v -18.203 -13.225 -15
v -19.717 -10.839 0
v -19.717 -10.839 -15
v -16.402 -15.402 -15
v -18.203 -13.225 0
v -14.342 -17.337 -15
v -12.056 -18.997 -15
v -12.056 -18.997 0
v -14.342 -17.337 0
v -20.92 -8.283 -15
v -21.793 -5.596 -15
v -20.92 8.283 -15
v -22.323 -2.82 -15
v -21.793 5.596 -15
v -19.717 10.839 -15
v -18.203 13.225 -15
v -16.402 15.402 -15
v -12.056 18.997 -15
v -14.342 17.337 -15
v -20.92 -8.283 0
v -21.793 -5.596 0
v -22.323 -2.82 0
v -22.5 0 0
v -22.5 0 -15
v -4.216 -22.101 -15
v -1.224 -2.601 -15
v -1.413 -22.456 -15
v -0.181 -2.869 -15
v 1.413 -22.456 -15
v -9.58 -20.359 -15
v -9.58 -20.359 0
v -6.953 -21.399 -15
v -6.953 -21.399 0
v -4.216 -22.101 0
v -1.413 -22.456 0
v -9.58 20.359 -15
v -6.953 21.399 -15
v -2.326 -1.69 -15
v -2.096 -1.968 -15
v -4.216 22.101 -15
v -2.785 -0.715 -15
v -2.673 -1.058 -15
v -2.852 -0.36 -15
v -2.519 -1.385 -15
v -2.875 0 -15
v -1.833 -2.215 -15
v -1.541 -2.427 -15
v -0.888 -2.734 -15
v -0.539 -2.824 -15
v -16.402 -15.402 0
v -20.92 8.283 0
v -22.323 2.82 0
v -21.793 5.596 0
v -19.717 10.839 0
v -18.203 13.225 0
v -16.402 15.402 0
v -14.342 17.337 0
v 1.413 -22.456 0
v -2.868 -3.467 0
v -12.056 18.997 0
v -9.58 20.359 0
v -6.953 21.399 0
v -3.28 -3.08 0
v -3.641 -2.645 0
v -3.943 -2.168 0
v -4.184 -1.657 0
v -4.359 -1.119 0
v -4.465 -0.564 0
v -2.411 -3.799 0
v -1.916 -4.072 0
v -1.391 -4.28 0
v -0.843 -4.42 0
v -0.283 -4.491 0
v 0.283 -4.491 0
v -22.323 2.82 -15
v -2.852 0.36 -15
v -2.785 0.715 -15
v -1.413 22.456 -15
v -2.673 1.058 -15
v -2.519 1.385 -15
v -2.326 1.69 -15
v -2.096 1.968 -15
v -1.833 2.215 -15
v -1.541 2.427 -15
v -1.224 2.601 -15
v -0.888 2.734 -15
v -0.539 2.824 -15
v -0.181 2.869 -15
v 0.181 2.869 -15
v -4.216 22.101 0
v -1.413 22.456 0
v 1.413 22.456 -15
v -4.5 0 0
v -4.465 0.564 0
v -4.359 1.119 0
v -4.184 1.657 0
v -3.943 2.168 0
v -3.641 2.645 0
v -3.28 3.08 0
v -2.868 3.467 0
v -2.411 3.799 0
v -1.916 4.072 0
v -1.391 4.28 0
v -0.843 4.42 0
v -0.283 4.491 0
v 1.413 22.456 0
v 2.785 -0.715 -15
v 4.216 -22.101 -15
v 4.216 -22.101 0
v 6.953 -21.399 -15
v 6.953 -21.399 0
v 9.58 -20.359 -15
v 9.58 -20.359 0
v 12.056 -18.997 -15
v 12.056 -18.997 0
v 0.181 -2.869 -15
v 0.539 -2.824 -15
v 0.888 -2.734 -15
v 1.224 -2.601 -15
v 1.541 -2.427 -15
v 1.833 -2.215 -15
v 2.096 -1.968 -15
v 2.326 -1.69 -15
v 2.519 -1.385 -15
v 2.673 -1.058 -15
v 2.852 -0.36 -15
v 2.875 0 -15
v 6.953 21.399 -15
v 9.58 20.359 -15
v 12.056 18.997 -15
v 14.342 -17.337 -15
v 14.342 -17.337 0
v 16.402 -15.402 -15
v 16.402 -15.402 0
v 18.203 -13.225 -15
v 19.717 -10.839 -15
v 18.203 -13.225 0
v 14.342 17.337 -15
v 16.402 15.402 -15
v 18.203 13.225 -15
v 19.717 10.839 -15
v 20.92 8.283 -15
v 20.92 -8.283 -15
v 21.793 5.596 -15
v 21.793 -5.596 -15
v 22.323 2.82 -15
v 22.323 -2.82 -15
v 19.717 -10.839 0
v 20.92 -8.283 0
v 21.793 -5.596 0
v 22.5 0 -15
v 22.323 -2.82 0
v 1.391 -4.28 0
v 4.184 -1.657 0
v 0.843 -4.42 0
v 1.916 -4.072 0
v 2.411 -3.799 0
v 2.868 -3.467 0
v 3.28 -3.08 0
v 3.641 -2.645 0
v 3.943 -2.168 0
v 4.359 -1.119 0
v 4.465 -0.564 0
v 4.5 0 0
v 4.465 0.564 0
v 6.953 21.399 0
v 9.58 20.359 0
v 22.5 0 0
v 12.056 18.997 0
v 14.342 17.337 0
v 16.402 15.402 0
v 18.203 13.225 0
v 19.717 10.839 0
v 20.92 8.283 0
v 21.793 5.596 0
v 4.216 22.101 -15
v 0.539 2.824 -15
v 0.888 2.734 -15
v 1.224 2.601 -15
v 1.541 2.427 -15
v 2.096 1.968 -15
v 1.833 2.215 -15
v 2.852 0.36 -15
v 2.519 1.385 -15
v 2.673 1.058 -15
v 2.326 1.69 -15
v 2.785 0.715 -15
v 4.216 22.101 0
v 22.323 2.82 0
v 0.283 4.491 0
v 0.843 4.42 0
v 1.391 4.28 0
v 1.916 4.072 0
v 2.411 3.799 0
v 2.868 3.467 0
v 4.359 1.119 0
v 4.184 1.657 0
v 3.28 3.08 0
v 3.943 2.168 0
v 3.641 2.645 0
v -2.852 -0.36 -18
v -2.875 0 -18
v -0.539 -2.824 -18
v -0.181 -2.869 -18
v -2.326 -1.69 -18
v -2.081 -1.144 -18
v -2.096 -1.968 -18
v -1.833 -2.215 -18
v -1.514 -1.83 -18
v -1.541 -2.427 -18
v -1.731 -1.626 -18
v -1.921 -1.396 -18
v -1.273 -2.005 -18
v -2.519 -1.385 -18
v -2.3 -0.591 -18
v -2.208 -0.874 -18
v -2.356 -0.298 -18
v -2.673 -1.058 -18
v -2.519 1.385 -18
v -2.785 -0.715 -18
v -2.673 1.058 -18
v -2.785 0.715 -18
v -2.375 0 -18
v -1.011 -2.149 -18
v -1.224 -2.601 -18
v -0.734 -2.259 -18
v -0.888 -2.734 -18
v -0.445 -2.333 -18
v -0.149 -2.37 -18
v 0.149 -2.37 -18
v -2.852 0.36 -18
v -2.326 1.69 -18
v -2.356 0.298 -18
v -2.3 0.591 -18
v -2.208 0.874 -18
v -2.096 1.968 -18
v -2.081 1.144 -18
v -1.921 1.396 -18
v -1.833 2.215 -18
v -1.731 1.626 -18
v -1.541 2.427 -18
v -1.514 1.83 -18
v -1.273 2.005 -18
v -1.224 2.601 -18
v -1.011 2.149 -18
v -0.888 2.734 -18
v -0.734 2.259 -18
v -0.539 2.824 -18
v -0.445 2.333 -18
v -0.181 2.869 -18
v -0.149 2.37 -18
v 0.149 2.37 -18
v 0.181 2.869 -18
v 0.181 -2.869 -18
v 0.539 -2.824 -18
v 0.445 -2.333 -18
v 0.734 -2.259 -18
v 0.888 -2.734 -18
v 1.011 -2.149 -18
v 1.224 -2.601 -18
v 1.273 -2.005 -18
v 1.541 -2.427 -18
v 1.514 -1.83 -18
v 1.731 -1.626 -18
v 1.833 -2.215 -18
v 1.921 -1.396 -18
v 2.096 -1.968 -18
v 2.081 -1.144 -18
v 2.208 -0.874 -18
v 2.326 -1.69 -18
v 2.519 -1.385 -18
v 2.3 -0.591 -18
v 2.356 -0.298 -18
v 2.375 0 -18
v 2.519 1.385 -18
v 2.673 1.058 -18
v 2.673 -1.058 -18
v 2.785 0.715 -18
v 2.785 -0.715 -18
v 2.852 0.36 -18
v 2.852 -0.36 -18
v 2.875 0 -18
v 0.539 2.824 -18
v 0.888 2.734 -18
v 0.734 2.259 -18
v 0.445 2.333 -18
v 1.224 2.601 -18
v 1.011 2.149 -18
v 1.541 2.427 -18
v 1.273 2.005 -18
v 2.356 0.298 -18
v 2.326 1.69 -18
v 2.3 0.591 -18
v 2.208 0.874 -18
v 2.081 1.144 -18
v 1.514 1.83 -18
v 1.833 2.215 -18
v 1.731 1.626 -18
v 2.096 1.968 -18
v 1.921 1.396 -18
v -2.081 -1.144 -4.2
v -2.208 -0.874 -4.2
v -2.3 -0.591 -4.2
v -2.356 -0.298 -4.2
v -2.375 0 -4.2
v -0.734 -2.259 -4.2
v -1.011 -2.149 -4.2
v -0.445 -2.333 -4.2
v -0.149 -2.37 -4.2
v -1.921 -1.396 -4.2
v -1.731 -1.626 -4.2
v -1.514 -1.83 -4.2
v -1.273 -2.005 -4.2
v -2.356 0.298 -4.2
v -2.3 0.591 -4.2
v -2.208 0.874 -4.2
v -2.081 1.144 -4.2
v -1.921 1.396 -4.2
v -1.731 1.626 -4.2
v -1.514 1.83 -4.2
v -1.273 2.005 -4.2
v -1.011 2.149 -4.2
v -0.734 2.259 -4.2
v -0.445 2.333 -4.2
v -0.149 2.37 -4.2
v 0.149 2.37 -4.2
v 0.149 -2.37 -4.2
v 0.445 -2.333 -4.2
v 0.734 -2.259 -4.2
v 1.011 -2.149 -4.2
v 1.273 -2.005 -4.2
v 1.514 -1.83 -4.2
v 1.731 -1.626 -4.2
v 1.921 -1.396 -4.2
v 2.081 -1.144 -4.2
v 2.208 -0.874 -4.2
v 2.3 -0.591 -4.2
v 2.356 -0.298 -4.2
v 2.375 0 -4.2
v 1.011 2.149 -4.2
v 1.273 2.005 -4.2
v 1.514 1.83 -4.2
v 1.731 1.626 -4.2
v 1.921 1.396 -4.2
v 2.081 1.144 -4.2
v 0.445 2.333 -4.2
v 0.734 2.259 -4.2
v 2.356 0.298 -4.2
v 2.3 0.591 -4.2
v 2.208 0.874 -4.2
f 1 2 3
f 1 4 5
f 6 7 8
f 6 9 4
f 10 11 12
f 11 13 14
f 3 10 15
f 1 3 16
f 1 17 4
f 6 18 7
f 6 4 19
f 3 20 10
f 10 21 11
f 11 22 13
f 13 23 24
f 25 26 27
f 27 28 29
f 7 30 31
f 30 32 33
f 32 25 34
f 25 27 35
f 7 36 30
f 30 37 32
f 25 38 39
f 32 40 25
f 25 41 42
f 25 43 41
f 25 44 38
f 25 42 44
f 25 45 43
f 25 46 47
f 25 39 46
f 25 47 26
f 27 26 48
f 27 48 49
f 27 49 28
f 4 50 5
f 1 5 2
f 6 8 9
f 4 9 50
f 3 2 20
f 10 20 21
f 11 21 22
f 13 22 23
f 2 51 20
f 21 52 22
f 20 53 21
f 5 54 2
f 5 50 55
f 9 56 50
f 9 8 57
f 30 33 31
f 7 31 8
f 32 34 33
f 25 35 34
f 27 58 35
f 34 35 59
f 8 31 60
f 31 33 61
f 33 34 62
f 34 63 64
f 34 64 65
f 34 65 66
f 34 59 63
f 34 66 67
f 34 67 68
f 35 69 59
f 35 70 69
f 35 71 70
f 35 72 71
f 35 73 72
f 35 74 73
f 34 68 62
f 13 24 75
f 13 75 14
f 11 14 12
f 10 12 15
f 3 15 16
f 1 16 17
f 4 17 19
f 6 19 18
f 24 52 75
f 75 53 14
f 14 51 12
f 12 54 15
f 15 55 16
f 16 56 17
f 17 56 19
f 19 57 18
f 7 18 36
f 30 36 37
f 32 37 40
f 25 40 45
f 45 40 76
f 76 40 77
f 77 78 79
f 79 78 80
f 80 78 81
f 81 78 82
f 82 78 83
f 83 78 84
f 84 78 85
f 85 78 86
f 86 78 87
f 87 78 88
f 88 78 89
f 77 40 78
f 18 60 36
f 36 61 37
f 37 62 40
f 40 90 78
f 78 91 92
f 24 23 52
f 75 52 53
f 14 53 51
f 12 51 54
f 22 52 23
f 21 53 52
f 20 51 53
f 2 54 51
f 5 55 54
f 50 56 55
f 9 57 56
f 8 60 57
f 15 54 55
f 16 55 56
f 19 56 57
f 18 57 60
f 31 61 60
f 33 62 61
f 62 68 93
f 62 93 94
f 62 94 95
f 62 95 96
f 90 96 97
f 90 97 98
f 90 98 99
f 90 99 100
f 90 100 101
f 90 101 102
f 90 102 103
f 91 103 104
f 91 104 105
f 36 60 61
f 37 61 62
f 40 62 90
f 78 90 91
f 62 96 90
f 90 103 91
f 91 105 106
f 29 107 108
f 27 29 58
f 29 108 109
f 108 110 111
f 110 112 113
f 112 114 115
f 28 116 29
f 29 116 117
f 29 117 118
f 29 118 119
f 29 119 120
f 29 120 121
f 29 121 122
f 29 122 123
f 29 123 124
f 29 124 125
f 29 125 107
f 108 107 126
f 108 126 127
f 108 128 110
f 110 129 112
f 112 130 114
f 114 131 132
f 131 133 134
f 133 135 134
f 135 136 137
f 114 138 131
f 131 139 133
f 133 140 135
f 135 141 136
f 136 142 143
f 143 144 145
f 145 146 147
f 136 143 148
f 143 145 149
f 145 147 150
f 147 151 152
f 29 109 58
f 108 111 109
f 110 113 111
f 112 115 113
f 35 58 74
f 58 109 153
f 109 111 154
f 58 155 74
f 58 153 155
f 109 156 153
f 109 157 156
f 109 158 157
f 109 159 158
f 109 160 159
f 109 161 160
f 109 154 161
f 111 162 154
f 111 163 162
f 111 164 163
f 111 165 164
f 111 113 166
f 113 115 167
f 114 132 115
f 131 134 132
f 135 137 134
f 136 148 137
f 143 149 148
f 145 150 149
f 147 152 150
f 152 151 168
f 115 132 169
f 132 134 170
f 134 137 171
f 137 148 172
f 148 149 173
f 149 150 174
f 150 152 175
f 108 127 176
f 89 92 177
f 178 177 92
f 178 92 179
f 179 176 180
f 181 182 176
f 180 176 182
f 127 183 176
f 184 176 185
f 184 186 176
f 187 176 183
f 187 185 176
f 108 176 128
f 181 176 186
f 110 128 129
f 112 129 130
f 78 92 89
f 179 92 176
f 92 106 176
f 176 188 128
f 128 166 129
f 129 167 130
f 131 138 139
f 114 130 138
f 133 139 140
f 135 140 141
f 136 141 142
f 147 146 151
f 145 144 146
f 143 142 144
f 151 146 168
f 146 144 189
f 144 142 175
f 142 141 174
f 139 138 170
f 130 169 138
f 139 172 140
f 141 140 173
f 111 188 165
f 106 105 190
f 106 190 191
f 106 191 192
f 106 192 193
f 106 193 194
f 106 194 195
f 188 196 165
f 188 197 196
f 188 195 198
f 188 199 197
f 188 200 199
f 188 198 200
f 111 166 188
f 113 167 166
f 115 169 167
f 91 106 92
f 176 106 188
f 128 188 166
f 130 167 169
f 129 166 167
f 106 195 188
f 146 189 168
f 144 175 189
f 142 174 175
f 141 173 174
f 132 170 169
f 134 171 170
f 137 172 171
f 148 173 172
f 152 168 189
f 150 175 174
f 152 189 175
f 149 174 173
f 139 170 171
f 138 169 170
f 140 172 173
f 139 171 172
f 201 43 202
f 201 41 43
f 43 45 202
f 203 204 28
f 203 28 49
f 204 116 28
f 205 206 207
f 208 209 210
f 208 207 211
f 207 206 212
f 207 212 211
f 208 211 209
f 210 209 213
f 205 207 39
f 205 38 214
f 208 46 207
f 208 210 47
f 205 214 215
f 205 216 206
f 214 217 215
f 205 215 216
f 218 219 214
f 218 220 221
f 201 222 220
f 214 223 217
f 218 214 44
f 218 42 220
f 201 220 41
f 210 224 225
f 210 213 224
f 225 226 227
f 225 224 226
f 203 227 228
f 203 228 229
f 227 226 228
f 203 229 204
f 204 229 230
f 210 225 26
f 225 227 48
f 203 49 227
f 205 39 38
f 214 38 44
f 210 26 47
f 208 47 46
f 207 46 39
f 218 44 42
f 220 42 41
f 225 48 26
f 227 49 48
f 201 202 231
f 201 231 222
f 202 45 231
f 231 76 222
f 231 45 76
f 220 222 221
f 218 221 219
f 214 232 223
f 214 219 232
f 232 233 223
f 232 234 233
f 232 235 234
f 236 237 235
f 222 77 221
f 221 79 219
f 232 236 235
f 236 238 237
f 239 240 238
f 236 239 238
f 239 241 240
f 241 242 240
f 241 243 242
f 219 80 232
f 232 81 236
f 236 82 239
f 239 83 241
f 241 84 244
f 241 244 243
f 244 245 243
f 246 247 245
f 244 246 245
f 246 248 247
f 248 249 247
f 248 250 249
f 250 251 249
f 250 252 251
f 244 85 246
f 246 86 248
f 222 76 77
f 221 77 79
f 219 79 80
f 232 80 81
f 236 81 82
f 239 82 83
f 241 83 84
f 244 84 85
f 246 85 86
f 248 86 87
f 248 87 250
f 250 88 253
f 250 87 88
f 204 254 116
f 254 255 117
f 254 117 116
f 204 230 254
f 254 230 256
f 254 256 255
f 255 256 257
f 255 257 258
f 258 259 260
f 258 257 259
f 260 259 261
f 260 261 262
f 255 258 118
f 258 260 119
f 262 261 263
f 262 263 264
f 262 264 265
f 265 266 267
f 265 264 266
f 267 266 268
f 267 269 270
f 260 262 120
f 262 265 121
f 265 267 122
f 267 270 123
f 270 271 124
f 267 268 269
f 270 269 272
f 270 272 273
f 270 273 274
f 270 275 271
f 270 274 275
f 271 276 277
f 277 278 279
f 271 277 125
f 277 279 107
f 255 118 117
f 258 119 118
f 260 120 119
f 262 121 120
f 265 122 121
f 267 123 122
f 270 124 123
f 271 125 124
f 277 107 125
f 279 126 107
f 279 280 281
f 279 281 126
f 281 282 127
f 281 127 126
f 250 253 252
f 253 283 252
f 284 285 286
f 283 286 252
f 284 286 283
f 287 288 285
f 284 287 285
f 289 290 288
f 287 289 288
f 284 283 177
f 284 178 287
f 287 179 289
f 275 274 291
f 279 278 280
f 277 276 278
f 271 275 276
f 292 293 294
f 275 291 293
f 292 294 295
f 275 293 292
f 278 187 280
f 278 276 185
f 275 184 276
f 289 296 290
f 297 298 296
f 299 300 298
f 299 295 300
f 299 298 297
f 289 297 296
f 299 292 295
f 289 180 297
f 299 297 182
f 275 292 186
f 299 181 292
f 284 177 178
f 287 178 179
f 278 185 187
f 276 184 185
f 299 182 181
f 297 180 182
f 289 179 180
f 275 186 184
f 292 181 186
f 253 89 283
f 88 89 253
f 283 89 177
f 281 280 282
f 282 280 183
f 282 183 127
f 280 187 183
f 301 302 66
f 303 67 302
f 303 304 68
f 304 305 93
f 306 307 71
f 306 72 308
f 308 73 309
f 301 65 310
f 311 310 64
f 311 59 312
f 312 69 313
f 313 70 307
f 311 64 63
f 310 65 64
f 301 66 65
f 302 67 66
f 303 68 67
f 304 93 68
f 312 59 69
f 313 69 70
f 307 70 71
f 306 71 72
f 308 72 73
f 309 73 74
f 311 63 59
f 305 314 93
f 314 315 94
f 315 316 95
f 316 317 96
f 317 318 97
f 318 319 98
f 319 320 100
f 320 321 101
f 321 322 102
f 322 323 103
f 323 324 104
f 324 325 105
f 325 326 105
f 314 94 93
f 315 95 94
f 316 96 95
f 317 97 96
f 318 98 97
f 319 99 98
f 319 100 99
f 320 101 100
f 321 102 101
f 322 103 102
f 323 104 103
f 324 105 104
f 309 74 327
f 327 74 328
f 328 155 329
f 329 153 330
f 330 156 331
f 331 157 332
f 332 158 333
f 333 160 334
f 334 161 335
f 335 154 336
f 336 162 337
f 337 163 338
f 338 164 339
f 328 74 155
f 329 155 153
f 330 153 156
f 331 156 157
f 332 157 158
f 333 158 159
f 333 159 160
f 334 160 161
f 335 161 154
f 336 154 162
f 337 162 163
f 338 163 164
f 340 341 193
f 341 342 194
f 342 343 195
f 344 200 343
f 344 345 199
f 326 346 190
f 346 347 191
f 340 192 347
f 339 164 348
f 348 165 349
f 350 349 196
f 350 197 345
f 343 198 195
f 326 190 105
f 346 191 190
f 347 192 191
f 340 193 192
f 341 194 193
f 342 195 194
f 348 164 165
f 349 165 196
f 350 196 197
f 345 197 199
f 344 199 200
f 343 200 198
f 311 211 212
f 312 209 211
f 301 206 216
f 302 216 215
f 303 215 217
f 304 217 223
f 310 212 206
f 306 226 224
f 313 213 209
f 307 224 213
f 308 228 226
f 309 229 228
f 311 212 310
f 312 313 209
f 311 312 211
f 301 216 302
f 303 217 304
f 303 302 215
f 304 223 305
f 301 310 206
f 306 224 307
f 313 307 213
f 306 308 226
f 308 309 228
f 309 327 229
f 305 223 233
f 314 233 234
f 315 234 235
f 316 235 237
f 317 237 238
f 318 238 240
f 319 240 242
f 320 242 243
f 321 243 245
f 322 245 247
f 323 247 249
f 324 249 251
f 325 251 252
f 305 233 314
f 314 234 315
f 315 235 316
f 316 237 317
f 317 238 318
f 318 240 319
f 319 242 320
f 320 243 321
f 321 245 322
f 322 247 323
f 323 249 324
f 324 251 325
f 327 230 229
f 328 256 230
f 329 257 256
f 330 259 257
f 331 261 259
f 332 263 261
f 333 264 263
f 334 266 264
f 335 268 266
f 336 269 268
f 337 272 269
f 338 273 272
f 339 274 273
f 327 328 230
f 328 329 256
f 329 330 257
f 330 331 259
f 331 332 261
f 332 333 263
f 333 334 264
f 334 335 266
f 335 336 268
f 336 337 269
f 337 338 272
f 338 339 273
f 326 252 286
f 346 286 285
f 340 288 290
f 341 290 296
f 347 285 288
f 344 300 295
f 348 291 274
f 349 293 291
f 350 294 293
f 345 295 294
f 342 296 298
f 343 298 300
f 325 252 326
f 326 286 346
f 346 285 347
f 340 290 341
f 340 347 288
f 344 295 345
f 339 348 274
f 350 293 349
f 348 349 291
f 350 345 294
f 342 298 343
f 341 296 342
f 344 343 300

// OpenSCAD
$fn = 50;

difference() {
	union() {
		translate(v = [0, 0, -15.0]) {
			cylinder(h = 15, r = 22.5);
		}
		#translate(v = [0, 0, -18.0]) {
			cylinder(h = 18, r = 2.875);
		}
	}
	union() {
		translate(v = [0, 0, 0]) {
			rotate(a = [0, 0, 0]) {
				difference() {
					union() {
						translate(v = [0, 0, -18.0]) {
							cylinder(h = 18, r = 2.25);
						}
						translate(v = [0, 0, -4.2]) {
							cylinder(h = 4.2, r1 = 2.375, r2 = 4.5);
						}
						translate(v = [0, 0, -18.0]) {
							cylinder(h = 18, r = 2.375);
						}
						translate(v = [0, 0, -18.0]) {
							cylinder(h = 18, r = 2.25);
						}
					}
					union();
				}
			}
		}
	}
}
